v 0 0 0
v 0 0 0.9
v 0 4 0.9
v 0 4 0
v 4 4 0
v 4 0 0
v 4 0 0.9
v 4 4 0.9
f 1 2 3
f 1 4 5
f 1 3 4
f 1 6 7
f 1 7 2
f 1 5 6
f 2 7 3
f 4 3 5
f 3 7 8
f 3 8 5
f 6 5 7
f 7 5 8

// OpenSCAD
/* Warning, this is a very basic generator with a lot of approximation 
input data : [QFN, D5X, 4x4x0.9mm, 16, , E, C04-00127E]
generated by com.zoubworld.electronics.cad.model3d.Basic
Date : Sun Feb 15 10:50:48 CET 2026
*/

//body
color("black")
translate([0,0,0])
cube([4.0,4.0,0.9], center=false);
